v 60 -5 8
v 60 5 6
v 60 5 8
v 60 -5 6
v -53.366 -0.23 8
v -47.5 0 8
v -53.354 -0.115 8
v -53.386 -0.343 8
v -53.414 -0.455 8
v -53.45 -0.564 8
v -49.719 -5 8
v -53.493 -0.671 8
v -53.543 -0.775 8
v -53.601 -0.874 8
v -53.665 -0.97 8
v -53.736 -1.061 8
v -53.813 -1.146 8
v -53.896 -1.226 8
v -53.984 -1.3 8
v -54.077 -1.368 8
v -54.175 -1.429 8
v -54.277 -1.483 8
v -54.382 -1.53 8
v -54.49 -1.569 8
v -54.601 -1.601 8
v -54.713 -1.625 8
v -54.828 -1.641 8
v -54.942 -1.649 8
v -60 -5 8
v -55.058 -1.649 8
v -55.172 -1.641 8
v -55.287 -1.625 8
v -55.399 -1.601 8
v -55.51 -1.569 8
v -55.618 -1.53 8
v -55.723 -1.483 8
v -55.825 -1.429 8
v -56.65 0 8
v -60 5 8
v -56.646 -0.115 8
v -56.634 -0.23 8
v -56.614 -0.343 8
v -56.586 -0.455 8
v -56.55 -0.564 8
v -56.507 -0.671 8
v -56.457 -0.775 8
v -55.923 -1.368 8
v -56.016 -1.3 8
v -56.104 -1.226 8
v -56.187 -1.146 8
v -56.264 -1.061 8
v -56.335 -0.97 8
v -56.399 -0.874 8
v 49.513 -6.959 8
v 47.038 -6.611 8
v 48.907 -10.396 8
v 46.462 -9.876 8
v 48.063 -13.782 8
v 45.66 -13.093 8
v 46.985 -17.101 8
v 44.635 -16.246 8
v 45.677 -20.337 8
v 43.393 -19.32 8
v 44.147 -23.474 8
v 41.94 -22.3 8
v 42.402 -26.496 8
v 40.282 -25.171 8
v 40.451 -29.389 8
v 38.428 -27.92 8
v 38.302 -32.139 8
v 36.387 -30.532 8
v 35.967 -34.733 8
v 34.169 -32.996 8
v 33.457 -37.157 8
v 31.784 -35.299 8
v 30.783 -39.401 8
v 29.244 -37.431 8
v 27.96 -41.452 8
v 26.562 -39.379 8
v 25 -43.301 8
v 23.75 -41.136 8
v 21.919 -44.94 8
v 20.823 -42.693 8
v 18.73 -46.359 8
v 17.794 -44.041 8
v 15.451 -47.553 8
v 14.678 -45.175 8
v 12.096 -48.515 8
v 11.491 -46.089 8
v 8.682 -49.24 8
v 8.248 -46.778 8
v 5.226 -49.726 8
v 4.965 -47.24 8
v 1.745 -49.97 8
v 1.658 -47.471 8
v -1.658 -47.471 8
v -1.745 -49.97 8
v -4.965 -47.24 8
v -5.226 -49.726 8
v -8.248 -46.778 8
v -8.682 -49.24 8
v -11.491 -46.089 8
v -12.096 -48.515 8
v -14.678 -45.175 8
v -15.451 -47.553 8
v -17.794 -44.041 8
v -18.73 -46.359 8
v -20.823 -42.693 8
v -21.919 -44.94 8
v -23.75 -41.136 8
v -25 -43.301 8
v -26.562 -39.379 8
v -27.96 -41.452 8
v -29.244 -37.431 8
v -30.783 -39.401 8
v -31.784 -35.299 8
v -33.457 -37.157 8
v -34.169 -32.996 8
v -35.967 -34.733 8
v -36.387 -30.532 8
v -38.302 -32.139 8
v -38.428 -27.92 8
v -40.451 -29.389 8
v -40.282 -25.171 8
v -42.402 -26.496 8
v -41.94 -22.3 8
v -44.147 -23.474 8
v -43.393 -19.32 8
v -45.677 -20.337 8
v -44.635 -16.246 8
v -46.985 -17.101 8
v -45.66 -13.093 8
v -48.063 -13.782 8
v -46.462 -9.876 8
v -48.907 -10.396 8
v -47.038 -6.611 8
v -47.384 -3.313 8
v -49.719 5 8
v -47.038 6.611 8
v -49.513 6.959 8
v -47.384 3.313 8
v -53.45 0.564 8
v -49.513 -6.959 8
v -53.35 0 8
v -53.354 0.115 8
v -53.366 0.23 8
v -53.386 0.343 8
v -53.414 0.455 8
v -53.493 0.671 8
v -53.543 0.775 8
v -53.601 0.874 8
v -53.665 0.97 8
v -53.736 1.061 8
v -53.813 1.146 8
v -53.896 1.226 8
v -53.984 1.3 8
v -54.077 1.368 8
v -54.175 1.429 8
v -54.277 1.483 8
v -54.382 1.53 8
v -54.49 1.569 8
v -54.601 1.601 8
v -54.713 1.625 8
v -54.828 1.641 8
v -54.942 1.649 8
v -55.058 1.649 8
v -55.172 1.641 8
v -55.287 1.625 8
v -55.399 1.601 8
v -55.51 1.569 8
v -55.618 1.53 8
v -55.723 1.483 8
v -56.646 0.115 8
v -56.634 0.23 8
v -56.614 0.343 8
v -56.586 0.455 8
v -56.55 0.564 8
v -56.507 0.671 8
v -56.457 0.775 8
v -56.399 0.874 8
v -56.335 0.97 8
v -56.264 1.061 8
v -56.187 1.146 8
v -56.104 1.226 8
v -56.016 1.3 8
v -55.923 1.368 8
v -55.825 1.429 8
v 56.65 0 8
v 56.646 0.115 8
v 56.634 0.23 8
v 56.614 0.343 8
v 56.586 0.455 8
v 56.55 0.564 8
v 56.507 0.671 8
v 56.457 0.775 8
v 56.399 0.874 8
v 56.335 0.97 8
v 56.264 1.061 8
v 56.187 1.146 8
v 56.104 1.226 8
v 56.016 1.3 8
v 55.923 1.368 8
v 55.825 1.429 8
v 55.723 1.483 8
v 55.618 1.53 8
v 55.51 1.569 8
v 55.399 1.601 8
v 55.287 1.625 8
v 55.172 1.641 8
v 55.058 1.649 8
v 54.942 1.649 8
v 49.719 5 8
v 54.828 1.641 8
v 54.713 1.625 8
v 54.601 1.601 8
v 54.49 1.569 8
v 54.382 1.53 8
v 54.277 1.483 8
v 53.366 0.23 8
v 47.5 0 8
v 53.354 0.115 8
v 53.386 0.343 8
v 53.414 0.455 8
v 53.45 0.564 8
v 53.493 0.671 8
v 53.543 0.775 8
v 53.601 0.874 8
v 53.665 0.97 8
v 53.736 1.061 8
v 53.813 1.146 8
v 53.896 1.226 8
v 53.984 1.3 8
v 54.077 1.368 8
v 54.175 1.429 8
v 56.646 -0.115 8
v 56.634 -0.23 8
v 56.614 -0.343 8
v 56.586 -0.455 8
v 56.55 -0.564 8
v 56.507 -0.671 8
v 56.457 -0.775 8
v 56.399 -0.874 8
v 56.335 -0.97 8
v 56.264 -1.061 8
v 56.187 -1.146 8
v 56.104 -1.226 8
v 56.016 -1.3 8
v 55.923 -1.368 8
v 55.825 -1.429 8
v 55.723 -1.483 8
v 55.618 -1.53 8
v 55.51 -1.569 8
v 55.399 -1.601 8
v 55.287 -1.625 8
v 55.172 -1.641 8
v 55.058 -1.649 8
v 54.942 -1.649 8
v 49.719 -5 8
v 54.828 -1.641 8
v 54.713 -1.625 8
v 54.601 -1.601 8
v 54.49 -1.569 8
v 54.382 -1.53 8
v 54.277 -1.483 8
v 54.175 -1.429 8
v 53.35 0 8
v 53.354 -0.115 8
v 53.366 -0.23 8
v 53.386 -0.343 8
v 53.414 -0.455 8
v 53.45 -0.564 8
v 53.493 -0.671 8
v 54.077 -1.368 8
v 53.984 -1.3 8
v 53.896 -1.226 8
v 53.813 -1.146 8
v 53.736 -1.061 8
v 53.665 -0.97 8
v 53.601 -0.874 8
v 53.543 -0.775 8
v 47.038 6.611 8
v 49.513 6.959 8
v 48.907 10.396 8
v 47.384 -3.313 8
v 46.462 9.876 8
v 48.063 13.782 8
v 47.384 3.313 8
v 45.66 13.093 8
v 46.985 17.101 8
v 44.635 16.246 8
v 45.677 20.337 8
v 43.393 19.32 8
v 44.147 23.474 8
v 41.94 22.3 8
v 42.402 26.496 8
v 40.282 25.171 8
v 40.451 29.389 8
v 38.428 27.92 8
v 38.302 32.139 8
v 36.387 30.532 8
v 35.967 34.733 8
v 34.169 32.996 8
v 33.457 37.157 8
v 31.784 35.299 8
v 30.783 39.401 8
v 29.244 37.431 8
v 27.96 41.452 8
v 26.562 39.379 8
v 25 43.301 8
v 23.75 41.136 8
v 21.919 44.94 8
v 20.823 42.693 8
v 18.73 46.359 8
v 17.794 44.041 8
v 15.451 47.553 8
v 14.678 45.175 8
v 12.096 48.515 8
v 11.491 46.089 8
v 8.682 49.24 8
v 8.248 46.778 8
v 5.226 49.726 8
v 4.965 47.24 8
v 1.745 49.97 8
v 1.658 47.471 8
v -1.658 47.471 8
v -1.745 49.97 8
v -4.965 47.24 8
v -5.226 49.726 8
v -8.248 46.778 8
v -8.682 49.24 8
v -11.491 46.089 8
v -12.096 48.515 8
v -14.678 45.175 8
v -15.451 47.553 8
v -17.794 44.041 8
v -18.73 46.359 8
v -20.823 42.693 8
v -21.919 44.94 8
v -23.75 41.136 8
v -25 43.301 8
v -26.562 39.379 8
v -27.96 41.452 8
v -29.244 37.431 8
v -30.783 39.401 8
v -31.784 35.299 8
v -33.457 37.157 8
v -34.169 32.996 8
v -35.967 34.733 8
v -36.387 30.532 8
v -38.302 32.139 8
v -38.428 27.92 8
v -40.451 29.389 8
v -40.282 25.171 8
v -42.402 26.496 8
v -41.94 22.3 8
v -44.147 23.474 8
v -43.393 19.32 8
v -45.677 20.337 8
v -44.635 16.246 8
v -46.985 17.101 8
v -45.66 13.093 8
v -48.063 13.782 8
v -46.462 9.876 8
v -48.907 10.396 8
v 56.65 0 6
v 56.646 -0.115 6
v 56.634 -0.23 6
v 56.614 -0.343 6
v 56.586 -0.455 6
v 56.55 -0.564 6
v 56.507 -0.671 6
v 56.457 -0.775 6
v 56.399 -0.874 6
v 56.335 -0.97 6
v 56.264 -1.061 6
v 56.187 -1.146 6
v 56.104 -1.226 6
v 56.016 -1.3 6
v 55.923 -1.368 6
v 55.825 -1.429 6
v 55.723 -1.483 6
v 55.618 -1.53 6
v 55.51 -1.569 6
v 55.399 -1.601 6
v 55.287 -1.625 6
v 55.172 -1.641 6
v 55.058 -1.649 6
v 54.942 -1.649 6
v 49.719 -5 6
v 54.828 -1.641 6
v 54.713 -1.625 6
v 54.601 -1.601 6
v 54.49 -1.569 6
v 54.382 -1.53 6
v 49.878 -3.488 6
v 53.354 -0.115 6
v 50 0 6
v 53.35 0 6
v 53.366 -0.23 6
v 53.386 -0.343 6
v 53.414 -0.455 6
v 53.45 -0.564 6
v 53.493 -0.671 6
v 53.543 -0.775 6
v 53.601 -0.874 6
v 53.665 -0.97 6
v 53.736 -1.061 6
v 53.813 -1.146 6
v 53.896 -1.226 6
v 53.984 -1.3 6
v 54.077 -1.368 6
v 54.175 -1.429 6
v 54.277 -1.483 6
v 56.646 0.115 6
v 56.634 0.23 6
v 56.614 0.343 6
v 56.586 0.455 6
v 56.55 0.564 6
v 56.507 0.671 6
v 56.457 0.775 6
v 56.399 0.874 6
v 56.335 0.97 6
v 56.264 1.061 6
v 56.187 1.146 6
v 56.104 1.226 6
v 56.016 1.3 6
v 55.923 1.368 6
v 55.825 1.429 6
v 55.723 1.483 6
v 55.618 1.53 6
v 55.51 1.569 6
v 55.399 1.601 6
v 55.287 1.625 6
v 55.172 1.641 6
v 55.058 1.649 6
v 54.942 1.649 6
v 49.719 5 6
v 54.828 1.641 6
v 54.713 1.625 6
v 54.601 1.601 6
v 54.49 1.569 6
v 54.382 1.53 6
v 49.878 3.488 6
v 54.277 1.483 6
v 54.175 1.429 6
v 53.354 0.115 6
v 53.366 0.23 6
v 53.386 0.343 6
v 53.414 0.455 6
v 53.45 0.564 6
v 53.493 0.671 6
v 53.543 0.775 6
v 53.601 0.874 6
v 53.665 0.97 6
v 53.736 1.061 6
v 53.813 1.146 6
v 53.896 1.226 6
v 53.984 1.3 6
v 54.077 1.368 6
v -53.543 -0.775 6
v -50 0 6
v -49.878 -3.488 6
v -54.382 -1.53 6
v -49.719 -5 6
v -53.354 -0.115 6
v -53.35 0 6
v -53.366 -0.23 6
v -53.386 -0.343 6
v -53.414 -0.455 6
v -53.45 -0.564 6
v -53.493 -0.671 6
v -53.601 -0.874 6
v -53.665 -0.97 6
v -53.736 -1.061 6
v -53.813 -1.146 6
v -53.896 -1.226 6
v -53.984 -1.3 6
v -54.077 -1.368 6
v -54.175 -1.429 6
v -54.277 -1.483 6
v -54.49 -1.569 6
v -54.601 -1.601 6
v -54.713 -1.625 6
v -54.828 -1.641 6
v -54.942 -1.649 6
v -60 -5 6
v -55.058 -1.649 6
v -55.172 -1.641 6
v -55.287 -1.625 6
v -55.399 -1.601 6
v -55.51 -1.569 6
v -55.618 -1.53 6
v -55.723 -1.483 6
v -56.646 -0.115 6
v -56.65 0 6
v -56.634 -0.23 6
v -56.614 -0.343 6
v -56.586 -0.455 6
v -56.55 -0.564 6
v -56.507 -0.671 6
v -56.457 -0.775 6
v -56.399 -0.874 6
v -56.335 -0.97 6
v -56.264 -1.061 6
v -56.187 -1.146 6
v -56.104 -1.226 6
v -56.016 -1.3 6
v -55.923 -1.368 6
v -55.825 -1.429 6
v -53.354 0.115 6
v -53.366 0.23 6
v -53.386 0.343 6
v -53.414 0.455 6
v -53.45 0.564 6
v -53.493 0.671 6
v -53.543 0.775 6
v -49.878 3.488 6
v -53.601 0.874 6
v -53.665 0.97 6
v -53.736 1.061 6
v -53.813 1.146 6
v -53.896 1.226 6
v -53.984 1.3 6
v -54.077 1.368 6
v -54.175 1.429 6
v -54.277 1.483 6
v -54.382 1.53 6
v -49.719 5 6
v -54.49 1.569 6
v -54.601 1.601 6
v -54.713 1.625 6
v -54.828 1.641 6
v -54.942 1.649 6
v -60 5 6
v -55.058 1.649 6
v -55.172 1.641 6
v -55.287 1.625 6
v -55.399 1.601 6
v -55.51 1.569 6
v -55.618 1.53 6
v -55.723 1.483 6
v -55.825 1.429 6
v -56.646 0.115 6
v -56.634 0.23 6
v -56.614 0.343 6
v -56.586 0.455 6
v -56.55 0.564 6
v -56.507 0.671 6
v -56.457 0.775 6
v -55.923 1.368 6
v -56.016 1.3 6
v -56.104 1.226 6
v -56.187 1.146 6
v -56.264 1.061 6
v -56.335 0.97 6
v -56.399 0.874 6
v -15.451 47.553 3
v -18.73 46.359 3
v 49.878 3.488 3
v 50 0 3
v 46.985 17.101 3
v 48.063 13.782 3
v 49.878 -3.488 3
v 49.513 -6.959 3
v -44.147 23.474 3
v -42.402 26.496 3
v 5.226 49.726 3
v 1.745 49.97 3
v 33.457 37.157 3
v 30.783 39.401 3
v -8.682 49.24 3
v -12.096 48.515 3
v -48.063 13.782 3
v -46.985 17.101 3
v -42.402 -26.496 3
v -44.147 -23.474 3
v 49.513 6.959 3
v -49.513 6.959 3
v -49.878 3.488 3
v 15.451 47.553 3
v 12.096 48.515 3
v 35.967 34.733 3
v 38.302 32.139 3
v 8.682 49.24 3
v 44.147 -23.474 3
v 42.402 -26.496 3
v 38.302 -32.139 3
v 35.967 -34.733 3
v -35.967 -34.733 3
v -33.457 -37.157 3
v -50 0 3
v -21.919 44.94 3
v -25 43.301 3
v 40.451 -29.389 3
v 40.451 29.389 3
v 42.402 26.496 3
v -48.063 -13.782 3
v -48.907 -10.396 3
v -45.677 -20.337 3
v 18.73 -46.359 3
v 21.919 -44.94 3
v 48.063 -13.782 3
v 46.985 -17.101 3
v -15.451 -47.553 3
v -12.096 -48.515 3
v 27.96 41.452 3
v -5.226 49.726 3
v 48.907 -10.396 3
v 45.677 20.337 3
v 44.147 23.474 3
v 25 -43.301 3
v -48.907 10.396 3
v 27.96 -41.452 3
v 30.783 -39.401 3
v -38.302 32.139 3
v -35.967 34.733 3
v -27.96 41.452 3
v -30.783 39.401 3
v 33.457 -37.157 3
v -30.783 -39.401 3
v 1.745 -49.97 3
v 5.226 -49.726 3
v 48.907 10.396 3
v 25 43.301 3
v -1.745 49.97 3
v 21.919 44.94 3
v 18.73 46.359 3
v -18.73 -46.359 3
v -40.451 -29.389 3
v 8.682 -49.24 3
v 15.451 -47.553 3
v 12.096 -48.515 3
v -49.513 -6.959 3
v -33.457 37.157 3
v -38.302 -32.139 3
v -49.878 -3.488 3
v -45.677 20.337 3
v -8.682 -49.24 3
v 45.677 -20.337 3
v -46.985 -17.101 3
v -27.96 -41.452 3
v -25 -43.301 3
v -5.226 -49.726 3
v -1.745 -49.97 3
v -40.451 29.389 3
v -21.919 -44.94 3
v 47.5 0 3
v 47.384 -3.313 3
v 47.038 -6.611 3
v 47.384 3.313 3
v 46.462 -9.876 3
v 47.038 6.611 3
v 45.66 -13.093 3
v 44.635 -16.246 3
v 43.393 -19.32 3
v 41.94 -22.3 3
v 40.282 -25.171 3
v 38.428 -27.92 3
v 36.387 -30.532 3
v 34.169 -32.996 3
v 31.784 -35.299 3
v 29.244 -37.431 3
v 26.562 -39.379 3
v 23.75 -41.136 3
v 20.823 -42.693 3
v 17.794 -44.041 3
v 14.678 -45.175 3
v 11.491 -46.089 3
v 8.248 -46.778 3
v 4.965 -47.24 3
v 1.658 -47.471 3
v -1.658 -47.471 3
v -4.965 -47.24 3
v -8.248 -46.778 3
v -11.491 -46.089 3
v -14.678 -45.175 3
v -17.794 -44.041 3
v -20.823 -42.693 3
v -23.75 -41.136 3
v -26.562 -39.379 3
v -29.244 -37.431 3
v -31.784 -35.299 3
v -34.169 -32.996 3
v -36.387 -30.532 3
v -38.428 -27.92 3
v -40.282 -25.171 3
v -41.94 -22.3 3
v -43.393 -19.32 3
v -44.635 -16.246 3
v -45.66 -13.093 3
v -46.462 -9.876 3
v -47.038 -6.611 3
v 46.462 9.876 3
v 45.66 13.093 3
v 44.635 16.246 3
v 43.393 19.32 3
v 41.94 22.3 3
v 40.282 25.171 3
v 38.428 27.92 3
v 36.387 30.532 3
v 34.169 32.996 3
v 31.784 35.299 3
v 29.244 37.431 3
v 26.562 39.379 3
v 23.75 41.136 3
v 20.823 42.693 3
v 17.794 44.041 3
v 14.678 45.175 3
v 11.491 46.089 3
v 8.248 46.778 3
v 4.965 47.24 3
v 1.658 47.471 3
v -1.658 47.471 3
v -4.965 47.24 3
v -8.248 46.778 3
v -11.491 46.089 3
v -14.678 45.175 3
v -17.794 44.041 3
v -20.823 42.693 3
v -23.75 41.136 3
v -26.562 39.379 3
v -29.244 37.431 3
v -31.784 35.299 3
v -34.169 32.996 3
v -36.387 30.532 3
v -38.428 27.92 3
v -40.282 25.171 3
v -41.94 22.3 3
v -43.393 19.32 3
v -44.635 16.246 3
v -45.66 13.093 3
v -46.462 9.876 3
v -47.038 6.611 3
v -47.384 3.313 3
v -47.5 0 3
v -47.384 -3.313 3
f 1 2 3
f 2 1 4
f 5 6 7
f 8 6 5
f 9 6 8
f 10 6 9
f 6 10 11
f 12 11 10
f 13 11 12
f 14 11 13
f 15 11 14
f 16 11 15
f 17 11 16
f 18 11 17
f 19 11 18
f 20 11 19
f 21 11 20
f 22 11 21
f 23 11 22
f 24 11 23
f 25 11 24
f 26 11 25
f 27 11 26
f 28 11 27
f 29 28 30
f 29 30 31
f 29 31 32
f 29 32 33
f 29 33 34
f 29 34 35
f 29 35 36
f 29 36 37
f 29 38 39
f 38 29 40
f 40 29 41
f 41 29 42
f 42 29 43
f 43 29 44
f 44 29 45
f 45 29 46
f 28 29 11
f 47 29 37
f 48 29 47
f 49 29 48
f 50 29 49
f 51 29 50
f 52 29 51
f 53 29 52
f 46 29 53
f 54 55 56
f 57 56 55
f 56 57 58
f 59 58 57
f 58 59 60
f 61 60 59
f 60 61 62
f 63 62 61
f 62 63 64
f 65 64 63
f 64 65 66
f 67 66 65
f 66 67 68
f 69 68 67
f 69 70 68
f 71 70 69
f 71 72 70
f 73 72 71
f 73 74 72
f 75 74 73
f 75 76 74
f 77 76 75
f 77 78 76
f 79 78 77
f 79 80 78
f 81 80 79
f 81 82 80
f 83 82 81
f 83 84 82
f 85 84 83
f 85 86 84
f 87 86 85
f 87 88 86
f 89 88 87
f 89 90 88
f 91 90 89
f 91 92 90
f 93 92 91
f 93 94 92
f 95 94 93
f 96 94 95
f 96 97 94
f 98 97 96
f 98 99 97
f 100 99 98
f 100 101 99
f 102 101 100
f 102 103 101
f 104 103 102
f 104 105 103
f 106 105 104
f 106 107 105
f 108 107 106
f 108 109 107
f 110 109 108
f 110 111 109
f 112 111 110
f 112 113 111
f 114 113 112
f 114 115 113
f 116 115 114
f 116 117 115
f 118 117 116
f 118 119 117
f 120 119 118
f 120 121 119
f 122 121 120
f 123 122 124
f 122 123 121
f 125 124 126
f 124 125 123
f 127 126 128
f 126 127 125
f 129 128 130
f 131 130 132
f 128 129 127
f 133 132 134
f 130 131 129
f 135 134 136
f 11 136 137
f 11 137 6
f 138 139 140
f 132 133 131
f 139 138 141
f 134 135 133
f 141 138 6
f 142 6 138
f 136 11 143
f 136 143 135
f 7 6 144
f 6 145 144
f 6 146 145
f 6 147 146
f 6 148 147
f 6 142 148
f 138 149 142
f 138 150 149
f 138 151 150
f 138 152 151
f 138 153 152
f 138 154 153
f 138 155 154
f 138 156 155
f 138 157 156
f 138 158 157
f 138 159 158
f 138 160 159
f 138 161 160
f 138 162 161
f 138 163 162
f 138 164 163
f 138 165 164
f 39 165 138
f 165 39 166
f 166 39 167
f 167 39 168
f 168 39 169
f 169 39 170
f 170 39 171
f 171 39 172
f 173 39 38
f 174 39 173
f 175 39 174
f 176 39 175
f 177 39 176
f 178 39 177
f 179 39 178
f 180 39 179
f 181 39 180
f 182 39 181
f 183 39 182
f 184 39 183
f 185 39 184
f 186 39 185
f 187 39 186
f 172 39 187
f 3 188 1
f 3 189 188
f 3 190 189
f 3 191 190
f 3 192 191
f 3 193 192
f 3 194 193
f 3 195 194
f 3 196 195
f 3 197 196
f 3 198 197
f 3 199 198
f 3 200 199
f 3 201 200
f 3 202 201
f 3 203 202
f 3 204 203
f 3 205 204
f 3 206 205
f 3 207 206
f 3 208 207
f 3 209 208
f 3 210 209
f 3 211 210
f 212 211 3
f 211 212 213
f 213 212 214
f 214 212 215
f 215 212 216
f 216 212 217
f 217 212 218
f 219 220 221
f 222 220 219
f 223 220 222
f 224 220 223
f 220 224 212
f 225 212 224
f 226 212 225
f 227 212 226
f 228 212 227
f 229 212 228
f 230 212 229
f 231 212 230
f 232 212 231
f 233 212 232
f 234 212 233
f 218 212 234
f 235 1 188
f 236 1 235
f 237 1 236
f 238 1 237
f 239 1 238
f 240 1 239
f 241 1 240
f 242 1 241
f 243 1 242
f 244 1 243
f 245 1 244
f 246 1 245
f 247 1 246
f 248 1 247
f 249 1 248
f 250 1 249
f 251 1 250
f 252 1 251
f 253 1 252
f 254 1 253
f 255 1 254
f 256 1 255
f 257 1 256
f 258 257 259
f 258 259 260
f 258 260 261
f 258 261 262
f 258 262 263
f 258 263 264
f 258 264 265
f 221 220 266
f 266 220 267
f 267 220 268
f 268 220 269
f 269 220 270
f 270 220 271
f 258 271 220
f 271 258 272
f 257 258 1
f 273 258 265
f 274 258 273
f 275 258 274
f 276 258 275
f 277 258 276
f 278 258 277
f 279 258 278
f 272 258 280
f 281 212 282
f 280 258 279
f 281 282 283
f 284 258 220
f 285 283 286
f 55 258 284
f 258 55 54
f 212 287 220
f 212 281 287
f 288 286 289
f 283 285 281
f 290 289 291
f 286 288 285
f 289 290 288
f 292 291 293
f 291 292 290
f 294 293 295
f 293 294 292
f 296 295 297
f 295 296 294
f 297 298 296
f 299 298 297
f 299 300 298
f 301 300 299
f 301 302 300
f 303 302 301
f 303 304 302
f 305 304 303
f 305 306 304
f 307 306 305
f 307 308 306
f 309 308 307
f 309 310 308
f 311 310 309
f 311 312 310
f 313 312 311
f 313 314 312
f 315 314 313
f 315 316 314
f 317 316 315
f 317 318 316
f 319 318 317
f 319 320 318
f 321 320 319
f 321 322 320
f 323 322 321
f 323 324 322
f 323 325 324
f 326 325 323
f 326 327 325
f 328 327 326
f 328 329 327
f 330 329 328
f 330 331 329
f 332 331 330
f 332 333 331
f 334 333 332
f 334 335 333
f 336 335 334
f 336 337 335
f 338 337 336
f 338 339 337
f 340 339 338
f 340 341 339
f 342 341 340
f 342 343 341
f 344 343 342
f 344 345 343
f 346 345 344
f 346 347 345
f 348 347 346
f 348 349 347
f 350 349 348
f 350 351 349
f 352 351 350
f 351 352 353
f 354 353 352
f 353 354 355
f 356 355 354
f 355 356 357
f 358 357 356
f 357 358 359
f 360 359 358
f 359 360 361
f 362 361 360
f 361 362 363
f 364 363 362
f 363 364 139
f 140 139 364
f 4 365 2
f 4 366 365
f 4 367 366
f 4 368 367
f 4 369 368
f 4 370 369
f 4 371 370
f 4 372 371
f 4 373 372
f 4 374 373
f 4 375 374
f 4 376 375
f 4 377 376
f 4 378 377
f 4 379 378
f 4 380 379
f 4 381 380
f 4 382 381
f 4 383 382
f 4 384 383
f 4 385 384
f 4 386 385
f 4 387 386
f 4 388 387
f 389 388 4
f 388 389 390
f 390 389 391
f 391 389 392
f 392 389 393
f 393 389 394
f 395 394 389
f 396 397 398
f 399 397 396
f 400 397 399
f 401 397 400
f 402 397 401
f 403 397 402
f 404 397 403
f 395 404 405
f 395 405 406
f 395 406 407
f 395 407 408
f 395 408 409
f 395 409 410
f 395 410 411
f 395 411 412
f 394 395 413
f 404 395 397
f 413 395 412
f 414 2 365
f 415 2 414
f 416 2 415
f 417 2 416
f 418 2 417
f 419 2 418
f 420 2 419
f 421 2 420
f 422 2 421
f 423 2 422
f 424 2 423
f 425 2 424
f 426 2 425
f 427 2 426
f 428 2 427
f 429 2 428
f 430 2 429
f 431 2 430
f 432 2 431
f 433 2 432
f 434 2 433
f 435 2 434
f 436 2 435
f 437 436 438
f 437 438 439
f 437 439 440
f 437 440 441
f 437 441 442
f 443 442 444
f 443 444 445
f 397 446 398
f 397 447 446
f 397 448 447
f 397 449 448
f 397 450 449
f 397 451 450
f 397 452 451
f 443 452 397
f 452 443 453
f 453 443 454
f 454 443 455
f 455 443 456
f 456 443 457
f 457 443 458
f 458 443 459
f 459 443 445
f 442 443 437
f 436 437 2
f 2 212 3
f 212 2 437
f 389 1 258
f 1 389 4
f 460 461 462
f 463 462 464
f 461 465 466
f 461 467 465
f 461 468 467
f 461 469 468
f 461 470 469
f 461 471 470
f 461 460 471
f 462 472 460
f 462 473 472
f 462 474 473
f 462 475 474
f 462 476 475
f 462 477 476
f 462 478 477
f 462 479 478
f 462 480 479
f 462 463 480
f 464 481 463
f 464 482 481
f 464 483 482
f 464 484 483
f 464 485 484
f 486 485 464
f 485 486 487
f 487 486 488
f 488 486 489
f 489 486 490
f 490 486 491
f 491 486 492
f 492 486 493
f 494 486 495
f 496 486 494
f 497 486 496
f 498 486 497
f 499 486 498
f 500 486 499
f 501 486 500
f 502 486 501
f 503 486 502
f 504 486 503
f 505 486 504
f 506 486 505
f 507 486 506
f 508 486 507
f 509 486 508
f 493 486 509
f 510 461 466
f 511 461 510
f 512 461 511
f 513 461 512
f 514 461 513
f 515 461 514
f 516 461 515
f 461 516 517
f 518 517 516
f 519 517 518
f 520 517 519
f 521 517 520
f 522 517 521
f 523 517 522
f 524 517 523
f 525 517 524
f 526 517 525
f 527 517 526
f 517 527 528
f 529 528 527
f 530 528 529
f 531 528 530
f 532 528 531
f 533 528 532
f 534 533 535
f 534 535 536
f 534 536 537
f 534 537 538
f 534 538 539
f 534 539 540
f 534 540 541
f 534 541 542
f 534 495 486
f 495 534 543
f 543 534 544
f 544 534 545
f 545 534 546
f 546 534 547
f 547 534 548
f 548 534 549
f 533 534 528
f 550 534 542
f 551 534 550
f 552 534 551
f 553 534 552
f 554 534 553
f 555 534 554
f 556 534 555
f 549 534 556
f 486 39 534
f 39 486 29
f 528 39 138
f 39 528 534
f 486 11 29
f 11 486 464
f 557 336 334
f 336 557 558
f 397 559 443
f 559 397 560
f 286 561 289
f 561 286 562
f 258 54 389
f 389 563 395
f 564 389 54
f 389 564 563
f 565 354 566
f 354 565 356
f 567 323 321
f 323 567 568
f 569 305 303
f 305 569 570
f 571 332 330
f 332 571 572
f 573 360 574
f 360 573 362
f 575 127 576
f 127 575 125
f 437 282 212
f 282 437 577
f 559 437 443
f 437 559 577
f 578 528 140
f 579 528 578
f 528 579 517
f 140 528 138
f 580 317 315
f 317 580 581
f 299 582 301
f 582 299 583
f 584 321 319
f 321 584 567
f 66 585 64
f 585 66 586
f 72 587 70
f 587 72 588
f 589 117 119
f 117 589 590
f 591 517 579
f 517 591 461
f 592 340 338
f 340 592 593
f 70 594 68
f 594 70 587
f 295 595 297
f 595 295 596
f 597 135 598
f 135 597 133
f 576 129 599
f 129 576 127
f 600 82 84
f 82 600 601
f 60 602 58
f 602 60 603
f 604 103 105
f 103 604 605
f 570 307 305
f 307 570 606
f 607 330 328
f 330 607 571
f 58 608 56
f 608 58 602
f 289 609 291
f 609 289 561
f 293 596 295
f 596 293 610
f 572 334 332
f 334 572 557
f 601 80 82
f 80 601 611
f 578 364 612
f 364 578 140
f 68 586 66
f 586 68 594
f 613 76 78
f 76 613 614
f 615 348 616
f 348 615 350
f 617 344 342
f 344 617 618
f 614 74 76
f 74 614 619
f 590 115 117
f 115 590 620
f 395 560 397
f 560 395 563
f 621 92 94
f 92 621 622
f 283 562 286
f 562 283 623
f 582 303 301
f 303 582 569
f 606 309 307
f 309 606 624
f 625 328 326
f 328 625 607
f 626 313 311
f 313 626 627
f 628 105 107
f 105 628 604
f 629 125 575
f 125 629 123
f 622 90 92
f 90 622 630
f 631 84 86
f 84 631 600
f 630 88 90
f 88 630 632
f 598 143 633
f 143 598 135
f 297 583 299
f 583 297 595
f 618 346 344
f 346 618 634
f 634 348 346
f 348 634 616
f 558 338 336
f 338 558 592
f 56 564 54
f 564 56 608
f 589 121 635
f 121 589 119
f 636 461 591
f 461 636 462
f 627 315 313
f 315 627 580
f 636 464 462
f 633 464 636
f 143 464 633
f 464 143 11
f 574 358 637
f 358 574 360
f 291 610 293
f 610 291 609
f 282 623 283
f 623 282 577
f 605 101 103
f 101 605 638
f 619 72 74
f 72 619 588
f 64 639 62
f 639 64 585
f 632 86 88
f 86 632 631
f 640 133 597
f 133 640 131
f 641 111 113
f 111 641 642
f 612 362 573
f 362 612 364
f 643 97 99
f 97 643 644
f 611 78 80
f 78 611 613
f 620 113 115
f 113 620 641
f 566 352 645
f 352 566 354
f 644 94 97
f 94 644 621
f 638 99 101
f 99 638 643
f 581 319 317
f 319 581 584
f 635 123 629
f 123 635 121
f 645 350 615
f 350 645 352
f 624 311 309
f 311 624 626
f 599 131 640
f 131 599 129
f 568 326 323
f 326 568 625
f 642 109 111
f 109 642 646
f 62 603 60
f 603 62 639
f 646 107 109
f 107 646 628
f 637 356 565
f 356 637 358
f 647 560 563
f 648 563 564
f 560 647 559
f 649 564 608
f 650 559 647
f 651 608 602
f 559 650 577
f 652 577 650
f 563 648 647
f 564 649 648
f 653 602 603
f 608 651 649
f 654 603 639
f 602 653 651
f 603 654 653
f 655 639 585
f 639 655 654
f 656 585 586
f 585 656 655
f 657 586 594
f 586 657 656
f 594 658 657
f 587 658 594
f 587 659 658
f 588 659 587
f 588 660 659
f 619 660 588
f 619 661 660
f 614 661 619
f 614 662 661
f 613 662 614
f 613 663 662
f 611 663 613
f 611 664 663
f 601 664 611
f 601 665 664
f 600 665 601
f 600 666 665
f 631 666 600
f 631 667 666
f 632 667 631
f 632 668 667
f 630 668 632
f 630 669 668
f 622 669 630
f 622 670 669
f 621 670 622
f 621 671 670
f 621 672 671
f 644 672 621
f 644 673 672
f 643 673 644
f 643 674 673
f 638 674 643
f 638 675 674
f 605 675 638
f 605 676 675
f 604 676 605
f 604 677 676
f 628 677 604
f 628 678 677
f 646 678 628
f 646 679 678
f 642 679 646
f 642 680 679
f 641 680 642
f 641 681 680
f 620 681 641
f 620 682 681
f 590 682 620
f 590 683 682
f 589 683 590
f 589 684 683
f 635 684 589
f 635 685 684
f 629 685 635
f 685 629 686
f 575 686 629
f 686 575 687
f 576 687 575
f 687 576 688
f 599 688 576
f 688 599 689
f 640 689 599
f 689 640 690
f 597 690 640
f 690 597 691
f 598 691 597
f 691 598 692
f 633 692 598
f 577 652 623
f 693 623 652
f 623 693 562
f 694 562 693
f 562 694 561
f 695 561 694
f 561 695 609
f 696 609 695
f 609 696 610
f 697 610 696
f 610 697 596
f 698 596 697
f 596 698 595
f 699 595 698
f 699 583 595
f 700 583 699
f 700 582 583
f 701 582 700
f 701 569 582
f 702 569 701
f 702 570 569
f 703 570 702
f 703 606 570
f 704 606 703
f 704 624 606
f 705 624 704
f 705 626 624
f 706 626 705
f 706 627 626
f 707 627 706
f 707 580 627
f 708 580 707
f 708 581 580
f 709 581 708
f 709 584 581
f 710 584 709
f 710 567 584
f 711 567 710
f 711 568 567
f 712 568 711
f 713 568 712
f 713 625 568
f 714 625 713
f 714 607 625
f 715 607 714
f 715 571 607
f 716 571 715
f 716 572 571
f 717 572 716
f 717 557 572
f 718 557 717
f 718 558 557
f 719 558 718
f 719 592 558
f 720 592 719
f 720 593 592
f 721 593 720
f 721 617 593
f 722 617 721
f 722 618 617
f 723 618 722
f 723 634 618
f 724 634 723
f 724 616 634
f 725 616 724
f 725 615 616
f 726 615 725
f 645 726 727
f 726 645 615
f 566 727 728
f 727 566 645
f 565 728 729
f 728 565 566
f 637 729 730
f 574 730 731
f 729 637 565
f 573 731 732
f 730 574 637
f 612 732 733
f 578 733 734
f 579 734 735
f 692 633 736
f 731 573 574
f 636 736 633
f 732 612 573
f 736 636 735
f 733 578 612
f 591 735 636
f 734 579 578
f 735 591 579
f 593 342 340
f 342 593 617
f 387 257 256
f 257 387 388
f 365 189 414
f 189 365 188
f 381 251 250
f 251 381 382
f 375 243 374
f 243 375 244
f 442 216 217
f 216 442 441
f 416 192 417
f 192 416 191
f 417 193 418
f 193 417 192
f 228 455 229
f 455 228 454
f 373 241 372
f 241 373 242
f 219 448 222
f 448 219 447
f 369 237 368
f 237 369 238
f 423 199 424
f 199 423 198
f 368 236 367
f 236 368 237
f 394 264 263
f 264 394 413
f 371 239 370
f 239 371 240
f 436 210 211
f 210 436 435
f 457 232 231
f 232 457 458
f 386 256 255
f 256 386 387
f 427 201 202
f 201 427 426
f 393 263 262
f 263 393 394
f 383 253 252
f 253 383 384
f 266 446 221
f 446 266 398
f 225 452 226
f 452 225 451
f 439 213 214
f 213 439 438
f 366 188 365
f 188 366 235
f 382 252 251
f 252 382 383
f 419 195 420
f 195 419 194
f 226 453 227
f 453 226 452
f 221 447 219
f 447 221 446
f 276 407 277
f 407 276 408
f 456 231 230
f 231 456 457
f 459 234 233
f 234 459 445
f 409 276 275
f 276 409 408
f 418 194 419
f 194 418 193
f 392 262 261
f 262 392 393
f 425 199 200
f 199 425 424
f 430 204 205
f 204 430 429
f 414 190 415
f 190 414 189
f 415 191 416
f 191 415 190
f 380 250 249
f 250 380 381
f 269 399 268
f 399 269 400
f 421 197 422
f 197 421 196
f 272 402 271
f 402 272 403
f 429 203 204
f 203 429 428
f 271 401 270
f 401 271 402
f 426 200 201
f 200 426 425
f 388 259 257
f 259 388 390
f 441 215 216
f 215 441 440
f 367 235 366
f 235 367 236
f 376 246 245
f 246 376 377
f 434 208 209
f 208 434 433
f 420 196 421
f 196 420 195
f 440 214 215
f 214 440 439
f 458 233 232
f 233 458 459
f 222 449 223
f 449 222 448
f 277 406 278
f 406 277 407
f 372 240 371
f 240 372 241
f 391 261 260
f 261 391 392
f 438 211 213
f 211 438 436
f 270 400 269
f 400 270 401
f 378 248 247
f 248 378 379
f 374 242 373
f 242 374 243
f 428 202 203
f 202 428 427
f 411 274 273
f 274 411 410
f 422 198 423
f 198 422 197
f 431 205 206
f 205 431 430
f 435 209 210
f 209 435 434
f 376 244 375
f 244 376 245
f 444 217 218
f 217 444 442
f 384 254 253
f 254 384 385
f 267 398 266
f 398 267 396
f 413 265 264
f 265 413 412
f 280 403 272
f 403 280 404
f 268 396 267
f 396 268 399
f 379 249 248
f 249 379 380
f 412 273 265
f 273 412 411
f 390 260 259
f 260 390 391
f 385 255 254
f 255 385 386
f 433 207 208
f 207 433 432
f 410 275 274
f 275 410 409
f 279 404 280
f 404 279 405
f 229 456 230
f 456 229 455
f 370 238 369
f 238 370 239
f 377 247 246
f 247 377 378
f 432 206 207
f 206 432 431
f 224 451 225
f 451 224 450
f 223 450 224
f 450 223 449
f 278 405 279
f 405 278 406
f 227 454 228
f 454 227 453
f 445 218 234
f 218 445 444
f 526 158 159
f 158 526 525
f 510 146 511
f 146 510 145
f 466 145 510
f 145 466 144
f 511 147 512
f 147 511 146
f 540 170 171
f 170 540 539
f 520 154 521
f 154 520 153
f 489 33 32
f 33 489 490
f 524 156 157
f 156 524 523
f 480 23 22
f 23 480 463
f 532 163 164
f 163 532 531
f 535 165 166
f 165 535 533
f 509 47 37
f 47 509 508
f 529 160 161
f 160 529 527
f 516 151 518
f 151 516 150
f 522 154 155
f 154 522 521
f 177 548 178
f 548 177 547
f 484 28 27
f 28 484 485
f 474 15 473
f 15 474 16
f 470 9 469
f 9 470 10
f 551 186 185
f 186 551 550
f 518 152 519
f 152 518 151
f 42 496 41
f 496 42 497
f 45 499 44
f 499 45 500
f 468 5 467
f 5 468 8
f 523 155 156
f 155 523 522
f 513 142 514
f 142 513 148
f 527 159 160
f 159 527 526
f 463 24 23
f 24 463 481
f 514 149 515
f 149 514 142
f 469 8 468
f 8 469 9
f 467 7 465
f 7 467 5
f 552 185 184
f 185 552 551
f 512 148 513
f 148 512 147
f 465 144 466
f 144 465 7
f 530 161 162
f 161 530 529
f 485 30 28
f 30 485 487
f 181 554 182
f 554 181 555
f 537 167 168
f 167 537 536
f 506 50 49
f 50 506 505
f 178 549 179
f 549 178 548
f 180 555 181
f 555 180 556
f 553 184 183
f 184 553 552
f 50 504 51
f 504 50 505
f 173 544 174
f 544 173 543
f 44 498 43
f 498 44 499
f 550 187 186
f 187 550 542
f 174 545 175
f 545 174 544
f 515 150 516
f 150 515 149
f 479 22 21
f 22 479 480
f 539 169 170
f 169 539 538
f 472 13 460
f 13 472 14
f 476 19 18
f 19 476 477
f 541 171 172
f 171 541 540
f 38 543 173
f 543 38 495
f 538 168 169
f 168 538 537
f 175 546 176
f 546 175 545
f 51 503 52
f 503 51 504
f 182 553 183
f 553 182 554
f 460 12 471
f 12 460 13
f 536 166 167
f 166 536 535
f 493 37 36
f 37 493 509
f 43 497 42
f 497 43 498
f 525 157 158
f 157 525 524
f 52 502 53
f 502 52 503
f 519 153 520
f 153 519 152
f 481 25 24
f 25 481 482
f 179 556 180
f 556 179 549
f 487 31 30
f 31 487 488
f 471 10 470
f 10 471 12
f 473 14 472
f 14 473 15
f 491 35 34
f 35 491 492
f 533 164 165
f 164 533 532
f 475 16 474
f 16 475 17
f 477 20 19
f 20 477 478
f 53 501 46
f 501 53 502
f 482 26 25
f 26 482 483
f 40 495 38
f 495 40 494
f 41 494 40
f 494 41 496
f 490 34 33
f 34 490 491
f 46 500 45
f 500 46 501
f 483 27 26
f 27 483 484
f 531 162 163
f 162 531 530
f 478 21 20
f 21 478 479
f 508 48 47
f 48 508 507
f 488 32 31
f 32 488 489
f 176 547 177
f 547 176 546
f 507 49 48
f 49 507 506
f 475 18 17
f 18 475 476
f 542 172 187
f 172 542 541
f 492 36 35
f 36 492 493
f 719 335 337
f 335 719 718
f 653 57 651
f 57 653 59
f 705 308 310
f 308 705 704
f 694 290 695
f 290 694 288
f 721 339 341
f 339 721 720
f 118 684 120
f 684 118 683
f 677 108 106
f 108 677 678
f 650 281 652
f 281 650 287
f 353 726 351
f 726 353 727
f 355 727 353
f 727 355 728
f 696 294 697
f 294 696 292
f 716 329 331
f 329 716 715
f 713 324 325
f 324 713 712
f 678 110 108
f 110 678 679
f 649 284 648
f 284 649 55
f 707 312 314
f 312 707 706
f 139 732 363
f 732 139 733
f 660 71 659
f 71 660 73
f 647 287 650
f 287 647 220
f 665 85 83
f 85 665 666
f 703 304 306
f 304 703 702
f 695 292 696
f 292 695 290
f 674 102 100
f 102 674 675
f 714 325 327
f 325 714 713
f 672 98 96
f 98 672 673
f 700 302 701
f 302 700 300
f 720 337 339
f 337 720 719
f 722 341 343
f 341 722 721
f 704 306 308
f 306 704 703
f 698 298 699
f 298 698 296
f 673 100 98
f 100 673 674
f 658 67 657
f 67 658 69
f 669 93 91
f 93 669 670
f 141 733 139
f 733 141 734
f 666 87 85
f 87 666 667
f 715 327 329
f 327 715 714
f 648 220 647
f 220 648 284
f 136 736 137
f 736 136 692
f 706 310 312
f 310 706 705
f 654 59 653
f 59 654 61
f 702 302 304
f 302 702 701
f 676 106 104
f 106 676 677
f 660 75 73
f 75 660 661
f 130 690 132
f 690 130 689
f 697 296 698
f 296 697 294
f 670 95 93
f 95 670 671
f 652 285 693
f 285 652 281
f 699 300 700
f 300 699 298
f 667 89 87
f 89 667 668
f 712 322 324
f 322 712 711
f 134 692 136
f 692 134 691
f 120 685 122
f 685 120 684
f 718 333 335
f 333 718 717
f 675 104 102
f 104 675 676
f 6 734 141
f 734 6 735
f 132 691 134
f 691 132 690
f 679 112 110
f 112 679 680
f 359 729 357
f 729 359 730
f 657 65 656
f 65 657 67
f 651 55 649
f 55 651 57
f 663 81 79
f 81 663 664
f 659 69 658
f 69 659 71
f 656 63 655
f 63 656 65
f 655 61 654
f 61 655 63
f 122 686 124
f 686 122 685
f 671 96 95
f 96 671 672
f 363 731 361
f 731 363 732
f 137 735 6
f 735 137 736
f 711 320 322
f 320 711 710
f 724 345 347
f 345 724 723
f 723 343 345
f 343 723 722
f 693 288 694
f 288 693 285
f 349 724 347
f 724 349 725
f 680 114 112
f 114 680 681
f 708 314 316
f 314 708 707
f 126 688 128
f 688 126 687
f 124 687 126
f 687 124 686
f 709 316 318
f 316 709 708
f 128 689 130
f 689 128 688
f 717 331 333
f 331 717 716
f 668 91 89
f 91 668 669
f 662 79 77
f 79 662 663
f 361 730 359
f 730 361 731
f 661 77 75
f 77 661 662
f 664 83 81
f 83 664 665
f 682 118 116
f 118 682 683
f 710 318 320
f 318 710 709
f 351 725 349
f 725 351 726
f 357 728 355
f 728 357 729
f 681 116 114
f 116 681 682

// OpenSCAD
$fn = 90;

module line_sensor_shield(
    outer_d = 100,
    inner_d = 95,
    outer_h = 5,
    inner_h = 7,
    post_size = [20, 10, 2],
    post_offset = [50, 0, -1],
    hole_d = 3.3,
    hole_h = 100
) {
    translate([0, 0, 8]) {
        difference() {
            union() {
                translate([0, 0, -5])
                    cylinder(d = outer_d, h = outer_h);
                for (dir = [1, -1]) {
                    translate([dir * post_offset[0], post_offset[1], post_offset[2]])
                        cube(post_size, center = true);
                }
            }
            translate([0, 0, -6])
                cylinder(d = inner_d, h = inner_h);
            for (dir = [1, -1]) {
                translate([dir * (post_offset[0] + 5), post_offset[1], post_offset[2]])
                    cylinder(d = hole_d, h = hole_h, center = true);
            }
        }
    }
}

line_sensor_shield();
